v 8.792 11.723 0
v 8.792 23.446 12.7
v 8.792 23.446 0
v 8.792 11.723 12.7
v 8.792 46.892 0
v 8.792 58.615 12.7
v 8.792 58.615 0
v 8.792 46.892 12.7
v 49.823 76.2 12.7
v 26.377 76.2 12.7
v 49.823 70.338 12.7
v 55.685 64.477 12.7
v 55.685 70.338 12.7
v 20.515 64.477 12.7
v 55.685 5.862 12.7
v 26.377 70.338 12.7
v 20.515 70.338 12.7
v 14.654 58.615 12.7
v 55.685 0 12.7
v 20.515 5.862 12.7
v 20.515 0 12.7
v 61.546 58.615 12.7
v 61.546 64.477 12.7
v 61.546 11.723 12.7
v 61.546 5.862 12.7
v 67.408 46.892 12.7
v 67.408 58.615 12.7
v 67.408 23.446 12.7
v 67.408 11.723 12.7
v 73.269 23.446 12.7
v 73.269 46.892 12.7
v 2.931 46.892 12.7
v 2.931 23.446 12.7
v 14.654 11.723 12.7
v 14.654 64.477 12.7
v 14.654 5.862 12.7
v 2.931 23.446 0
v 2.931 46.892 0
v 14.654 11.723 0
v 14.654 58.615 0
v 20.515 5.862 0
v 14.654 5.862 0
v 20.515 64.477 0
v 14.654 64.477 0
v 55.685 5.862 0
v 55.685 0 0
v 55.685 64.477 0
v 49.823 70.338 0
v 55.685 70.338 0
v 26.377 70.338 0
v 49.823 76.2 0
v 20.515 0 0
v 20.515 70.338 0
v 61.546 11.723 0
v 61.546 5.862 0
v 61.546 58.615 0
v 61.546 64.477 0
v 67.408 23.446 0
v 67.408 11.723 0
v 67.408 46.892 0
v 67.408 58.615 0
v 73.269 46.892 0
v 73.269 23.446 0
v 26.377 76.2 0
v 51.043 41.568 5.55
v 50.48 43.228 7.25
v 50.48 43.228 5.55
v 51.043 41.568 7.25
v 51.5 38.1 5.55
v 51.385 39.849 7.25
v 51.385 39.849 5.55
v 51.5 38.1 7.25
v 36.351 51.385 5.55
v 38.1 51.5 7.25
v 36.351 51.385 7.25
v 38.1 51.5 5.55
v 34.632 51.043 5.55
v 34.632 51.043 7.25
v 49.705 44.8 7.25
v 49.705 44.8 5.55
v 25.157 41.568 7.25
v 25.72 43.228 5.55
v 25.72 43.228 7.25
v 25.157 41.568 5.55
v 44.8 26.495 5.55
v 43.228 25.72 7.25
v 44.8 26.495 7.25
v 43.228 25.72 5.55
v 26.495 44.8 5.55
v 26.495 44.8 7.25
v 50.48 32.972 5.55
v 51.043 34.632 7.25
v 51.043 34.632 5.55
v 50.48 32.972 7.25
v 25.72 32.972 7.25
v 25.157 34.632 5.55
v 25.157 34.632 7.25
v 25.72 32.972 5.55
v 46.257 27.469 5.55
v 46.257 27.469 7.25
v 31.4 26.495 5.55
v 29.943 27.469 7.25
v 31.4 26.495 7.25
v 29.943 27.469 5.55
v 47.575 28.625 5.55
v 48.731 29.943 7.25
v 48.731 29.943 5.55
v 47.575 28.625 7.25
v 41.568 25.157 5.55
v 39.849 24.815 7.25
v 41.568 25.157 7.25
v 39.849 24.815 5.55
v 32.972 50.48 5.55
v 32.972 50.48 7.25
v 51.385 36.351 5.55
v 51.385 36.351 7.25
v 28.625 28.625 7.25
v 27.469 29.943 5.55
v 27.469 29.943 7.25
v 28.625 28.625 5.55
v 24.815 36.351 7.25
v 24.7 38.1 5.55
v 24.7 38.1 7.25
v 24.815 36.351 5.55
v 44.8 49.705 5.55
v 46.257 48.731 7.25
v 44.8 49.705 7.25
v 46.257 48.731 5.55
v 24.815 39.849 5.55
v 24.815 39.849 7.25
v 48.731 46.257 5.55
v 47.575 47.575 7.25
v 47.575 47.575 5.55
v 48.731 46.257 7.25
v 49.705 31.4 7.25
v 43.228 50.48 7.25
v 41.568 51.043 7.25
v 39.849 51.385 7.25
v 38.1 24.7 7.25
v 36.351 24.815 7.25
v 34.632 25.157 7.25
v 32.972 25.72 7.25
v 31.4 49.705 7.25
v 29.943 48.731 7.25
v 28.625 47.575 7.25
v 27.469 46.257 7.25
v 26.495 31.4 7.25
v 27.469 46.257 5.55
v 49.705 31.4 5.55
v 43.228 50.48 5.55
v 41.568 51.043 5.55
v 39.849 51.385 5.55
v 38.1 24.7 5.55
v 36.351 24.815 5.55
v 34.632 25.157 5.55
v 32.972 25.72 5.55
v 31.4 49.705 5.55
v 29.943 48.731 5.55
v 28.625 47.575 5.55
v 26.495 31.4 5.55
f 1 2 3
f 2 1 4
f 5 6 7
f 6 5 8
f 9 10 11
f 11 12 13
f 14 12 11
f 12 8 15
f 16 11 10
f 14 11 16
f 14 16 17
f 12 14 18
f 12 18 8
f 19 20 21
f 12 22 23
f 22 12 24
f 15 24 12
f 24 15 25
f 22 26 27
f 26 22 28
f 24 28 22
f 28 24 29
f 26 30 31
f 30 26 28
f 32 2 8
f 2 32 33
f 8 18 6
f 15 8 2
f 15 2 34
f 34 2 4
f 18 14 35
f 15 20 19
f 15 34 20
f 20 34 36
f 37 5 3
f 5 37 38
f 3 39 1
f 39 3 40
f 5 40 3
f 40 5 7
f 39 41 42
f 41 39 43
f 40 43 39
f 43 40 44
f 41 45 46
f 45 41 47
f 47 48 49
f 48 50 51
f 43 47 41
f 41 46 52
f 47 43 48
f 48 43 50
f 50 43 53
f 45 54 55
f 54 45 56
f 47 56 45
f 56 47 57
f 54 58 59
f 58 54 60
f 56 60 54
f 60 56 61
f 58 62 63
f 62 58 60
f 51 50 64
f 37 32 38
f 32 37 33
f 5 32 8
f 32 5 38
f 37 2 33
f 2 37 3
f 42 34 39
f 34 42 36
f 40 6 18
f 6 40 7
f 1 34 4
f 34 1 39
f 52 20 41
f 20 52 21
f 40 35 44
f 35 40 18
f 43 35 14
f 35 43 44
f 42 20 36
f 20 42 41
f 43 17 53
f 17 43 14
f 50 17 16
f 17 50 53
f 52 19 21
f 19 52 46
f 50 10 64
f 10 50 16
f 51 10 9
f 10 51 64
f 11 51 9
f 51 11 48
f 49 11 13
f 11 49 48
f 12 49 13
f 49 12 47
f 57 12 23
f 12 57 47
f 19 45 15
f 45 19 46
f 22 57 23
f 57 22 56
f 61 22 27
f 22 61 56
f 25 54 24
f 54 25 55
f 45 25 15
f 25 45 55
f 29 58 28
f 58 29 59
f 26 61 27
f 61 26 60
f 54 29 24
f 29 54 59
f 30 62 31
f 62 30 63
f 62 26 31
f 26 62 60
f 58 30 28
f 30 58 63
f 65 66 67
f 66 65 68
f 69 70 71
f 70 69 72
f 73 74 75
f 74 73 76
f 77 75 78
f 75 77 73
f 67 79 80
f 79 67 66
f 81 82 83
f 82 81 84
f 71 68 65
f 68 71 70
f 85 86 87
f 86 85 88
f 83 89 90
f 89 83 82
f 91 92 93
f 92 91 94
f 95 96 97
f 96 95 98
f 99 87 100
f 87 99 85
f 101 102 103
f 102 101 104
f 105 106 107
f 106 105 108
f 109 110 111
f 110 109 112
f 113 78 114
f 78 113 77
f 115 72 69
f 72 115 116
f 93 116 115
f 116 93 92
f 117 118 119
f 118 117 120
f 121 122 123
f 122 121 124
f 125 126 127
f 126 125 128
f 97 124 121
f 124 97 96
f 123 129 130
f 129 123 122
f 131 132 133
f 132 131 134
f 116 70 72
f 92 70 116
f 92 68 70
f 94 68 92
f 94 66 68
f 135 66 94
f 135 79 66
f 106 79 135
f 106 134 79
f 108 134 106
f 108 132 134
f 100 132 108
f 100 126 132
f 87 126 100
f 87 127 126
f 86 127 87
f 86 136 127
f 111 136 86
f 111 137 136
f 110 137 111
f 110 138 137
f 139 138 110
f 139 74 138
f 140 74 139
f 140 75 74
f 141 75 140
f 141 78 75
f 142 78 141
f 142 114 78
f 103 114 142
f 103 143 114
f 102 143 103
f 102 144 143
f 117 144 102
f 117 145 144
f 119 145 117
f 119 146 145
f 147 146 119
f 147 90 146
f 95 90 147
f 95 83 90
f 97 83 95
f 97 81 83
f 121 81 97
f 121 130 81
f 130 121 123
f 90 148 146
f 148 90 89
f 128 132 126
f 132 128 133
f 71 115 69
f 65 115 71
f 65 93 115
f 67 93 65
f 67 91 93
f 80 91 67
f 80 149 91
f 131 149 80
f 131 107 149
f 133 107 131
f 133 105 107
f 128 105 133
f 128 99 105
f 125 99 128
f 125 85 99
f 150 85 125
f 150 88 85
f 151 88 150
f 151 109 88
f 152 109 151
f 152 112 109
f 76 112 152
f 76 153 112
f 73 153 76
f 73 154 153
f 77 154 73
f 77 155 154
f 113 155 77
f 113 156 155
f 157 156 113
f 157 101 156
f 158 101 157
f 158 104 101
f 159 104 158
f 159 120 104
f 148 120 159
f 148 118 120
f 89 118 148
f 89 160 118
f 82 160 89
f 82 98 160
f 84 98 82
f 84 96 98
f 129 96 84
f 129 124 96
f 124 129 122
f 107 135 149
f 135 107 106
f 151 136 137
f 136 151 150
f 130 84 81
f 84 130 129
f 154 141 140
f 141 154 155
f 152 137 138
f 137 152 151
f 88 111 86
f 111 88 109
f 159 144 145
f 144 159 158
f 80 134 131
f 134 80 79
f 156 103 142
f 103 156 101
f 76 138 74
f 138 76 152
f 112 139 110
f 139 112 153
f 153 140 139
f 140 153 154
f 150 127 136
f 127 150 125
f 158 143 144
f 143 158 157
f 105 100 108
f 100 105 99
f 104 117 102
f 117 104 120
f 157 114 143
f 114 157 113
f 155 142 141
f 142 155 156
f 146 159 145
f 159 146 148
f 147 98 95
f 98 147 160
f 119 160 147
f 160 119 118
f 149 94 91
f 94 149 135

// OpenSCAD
// diamond — Minecraft Item Shape 3D Model
// Auto-generated from minecraft/textures/item/diamond.png
//
// Open in OpenSCAD → F5 preview → F6 render → F7 export STL

// ============================================================
// PARAMETERS
// ============================================================

GRID_SIZE_IN    = 3.0;           // crafting table slot size
PIXELS          = 13;              // grid divisions (shape-fitted)
PIXEL_MM        = (GRID_SIZE_IN * 25.4) / PIXELS;  // mm per pixel

DEPTH_IN        = 0.5;          // extrusion depth in inches
DEPTH_MM        = DEPTH_IN * 25.4;

// NFC tag (NTAG215 25mm coin)
TAG_DIAMETER    = 26;           // mm — slightly oversized for easy drop-in
TAG_THICKNESS   = 1.2;         // mm
TAG_CLEARANCE   = 0.4;         // mm extra around tag

cavity_d = TAG_DIAMETER + TAG_CLEARANCE * 2;
cavity_h = TAG_THICKNESS + TAG_CLEARANCE;

echo(str("Tag cavity: ", cavity_d, "mm dia × ", cavity_h, "mm deep"));
echo(str("PAUSE AT: ", DEPTH_MM / 2 + cavity_h / 2, "mm to insert tag"));

module tag_cavity() {
    cx = (6.0 + 0.5) * PIXEL_MM;
    cy = (PIXELS - 1 - 6.0 + 0.5) * PIXEL_MM;
    translate([cx, cy, DEPTH_MM / 2 - cavity_h / 2])
        cylinder(d = cavity_d, h = cavity_h + 0.1, $fn = 48);
}

module tag_shelf() {
    cx = (6.0 + 0.5) * PIXEL_MM;
    cy = (PIXELS - 1 - 6.0 + 0.5) * PIXEL_MM;
    translate([cx, cy, DEPTH_MM / 2 - cavity_h / 2 - 1.0])
        cylinder(d = cavity_d + 4, h = 1.0, $fn = 48);
}

echo(str("Pixel size: ", PIXEL_MM, "mm"));
echo(str("Footprint: ", PIXELS * PIXEL_MM, "mm = ", GRID_SIZE_IN, " in"));
echo(str("Depth: ", DEPTH_MM, "mm = ", DEPTH_IN, " in"));

// ============================================================
// PIXEL MAP — 120 opaque pixels
// ============================================================

item_pixels = [
    [0.5,5.0], [0.5,6.0], [0.5,7.0], [0.5,8.0], [1.5,3.0], [1.5,4.0], [1.5,5.0], [1.5,6.0],
    [1.5,7.0], [1.5,8.0], [1.5,9.0], [1.5,10.0], [2.5,2.0], [2.5,3.0], [2.5,4.0], [2.5,5.0],
    [2.5,6.0], [2.5,7.0], [2.5,8.0], [2.5,9.0], [2.5,10.0], [2.5,11.0], [3.5,1.0], [3.5,2.0],
    [3.5,3.0], [3.5,4.0], [3.5,5.0], [3.5,6.0], [3.5,7.0], [3.5,8.0], [3.5,9.0], [3.5,10.0],
    [3.5,11.0], [3.5,12.0], [4.5,0.0], [4.5,1.0], [4.5,2.0], [4.5,3.0], [4.5,4.0], [4.5,5.0],
    [4.5,6.0], [4.5,7.0], [4.5,8.0], [4.5,9.0], [4.5,10.0], [4.5,11.0], [4.5,12.0], [5.5,0.0],
    [5.5,1.0], [5.5,2.0], [5.5,3.0], [5.5,4.0], [5.5,5.0], [5.5,6.0], [5.5,7.0], [5.5,8.0],
    [5.5,9.0], [5.5,10.0], [5.5,11.0], [5.5,12.0], [6.5,0.0], [6.5,1.0], [6.5,2.0], [6.5,3.0],
    [6.5,4.0], [6.5,5.0], [6.5,6.0], [6.5,7.0], [6.5,8.0], [6.5,9.0], [6.5,10.0], [6.5,11.0],
    [6.5,12.0], [7.5,0.0], [7.5,1.0], [7.5,2.0], [7.5,3.0], [7.5,4.0], [7.5,5.0], [7.5,6.0],
    [7.5,7.0], [7.5,8.0], [7.5,9.0], [7.5,10.0], [7.5,11.0], [7.5,12.0], [8.5,1.0], [8.5,2.0],
    [8.5,3.0], [8.5,4.0], [8.5,5.0], [8.5,6.0], [8.5,7.0], [8.5,8.0], [8.5,9.0], [8.5,10.0],
    [8.5,11.0], [8.5,12.0], [9.5,2.0], [9.5,3.0], [9.5,4.0], [9.5,5.0], [9.5,6.0], [9.5,7.0],
    [9.5,8.0], [9.5,9.0], [9.5,10.0], [9.5,11.0], [10.5,3.0], [10.5,4.0], [10.5,5.0], [10.5,6.0],
    [10.5,7.0], [10.5,8.0], [10.5,9.0], [10.5,10.0], [11.5,5.0], [11.5,6.0], [11.5,7.0], [11.5,8.0]
];

// ============================================================
// MODULES
// ============================================================

module pixel_block(col, row) {
    translate([col * PIXEL_MM, (PIXELS - 1 - row) * PIXEL_MM, 0])
        cube([PIXEL_MM, PIXEL_MM, DEPTH_MM]);
}

module item_shape() {
    for (i = [0 : len(item_pixels) - 1])
        pixel_block(item_pixels[i][0], item_pixels[i][1]);
}

module item_final() {
    difference() {
        union() {
            item_shape();
            intersection() {
                item_shape();
                tag_shelf();
            }
        }
        tag_cavity();
    }
}

item_final();

// Cross-section view (uncomment to see tag cavity):
// difference() {
//     item_final();
//     translate([8 * PIXEL_MM + 50, 0, 0])
//         cube([100, 200, 100]);
// }
